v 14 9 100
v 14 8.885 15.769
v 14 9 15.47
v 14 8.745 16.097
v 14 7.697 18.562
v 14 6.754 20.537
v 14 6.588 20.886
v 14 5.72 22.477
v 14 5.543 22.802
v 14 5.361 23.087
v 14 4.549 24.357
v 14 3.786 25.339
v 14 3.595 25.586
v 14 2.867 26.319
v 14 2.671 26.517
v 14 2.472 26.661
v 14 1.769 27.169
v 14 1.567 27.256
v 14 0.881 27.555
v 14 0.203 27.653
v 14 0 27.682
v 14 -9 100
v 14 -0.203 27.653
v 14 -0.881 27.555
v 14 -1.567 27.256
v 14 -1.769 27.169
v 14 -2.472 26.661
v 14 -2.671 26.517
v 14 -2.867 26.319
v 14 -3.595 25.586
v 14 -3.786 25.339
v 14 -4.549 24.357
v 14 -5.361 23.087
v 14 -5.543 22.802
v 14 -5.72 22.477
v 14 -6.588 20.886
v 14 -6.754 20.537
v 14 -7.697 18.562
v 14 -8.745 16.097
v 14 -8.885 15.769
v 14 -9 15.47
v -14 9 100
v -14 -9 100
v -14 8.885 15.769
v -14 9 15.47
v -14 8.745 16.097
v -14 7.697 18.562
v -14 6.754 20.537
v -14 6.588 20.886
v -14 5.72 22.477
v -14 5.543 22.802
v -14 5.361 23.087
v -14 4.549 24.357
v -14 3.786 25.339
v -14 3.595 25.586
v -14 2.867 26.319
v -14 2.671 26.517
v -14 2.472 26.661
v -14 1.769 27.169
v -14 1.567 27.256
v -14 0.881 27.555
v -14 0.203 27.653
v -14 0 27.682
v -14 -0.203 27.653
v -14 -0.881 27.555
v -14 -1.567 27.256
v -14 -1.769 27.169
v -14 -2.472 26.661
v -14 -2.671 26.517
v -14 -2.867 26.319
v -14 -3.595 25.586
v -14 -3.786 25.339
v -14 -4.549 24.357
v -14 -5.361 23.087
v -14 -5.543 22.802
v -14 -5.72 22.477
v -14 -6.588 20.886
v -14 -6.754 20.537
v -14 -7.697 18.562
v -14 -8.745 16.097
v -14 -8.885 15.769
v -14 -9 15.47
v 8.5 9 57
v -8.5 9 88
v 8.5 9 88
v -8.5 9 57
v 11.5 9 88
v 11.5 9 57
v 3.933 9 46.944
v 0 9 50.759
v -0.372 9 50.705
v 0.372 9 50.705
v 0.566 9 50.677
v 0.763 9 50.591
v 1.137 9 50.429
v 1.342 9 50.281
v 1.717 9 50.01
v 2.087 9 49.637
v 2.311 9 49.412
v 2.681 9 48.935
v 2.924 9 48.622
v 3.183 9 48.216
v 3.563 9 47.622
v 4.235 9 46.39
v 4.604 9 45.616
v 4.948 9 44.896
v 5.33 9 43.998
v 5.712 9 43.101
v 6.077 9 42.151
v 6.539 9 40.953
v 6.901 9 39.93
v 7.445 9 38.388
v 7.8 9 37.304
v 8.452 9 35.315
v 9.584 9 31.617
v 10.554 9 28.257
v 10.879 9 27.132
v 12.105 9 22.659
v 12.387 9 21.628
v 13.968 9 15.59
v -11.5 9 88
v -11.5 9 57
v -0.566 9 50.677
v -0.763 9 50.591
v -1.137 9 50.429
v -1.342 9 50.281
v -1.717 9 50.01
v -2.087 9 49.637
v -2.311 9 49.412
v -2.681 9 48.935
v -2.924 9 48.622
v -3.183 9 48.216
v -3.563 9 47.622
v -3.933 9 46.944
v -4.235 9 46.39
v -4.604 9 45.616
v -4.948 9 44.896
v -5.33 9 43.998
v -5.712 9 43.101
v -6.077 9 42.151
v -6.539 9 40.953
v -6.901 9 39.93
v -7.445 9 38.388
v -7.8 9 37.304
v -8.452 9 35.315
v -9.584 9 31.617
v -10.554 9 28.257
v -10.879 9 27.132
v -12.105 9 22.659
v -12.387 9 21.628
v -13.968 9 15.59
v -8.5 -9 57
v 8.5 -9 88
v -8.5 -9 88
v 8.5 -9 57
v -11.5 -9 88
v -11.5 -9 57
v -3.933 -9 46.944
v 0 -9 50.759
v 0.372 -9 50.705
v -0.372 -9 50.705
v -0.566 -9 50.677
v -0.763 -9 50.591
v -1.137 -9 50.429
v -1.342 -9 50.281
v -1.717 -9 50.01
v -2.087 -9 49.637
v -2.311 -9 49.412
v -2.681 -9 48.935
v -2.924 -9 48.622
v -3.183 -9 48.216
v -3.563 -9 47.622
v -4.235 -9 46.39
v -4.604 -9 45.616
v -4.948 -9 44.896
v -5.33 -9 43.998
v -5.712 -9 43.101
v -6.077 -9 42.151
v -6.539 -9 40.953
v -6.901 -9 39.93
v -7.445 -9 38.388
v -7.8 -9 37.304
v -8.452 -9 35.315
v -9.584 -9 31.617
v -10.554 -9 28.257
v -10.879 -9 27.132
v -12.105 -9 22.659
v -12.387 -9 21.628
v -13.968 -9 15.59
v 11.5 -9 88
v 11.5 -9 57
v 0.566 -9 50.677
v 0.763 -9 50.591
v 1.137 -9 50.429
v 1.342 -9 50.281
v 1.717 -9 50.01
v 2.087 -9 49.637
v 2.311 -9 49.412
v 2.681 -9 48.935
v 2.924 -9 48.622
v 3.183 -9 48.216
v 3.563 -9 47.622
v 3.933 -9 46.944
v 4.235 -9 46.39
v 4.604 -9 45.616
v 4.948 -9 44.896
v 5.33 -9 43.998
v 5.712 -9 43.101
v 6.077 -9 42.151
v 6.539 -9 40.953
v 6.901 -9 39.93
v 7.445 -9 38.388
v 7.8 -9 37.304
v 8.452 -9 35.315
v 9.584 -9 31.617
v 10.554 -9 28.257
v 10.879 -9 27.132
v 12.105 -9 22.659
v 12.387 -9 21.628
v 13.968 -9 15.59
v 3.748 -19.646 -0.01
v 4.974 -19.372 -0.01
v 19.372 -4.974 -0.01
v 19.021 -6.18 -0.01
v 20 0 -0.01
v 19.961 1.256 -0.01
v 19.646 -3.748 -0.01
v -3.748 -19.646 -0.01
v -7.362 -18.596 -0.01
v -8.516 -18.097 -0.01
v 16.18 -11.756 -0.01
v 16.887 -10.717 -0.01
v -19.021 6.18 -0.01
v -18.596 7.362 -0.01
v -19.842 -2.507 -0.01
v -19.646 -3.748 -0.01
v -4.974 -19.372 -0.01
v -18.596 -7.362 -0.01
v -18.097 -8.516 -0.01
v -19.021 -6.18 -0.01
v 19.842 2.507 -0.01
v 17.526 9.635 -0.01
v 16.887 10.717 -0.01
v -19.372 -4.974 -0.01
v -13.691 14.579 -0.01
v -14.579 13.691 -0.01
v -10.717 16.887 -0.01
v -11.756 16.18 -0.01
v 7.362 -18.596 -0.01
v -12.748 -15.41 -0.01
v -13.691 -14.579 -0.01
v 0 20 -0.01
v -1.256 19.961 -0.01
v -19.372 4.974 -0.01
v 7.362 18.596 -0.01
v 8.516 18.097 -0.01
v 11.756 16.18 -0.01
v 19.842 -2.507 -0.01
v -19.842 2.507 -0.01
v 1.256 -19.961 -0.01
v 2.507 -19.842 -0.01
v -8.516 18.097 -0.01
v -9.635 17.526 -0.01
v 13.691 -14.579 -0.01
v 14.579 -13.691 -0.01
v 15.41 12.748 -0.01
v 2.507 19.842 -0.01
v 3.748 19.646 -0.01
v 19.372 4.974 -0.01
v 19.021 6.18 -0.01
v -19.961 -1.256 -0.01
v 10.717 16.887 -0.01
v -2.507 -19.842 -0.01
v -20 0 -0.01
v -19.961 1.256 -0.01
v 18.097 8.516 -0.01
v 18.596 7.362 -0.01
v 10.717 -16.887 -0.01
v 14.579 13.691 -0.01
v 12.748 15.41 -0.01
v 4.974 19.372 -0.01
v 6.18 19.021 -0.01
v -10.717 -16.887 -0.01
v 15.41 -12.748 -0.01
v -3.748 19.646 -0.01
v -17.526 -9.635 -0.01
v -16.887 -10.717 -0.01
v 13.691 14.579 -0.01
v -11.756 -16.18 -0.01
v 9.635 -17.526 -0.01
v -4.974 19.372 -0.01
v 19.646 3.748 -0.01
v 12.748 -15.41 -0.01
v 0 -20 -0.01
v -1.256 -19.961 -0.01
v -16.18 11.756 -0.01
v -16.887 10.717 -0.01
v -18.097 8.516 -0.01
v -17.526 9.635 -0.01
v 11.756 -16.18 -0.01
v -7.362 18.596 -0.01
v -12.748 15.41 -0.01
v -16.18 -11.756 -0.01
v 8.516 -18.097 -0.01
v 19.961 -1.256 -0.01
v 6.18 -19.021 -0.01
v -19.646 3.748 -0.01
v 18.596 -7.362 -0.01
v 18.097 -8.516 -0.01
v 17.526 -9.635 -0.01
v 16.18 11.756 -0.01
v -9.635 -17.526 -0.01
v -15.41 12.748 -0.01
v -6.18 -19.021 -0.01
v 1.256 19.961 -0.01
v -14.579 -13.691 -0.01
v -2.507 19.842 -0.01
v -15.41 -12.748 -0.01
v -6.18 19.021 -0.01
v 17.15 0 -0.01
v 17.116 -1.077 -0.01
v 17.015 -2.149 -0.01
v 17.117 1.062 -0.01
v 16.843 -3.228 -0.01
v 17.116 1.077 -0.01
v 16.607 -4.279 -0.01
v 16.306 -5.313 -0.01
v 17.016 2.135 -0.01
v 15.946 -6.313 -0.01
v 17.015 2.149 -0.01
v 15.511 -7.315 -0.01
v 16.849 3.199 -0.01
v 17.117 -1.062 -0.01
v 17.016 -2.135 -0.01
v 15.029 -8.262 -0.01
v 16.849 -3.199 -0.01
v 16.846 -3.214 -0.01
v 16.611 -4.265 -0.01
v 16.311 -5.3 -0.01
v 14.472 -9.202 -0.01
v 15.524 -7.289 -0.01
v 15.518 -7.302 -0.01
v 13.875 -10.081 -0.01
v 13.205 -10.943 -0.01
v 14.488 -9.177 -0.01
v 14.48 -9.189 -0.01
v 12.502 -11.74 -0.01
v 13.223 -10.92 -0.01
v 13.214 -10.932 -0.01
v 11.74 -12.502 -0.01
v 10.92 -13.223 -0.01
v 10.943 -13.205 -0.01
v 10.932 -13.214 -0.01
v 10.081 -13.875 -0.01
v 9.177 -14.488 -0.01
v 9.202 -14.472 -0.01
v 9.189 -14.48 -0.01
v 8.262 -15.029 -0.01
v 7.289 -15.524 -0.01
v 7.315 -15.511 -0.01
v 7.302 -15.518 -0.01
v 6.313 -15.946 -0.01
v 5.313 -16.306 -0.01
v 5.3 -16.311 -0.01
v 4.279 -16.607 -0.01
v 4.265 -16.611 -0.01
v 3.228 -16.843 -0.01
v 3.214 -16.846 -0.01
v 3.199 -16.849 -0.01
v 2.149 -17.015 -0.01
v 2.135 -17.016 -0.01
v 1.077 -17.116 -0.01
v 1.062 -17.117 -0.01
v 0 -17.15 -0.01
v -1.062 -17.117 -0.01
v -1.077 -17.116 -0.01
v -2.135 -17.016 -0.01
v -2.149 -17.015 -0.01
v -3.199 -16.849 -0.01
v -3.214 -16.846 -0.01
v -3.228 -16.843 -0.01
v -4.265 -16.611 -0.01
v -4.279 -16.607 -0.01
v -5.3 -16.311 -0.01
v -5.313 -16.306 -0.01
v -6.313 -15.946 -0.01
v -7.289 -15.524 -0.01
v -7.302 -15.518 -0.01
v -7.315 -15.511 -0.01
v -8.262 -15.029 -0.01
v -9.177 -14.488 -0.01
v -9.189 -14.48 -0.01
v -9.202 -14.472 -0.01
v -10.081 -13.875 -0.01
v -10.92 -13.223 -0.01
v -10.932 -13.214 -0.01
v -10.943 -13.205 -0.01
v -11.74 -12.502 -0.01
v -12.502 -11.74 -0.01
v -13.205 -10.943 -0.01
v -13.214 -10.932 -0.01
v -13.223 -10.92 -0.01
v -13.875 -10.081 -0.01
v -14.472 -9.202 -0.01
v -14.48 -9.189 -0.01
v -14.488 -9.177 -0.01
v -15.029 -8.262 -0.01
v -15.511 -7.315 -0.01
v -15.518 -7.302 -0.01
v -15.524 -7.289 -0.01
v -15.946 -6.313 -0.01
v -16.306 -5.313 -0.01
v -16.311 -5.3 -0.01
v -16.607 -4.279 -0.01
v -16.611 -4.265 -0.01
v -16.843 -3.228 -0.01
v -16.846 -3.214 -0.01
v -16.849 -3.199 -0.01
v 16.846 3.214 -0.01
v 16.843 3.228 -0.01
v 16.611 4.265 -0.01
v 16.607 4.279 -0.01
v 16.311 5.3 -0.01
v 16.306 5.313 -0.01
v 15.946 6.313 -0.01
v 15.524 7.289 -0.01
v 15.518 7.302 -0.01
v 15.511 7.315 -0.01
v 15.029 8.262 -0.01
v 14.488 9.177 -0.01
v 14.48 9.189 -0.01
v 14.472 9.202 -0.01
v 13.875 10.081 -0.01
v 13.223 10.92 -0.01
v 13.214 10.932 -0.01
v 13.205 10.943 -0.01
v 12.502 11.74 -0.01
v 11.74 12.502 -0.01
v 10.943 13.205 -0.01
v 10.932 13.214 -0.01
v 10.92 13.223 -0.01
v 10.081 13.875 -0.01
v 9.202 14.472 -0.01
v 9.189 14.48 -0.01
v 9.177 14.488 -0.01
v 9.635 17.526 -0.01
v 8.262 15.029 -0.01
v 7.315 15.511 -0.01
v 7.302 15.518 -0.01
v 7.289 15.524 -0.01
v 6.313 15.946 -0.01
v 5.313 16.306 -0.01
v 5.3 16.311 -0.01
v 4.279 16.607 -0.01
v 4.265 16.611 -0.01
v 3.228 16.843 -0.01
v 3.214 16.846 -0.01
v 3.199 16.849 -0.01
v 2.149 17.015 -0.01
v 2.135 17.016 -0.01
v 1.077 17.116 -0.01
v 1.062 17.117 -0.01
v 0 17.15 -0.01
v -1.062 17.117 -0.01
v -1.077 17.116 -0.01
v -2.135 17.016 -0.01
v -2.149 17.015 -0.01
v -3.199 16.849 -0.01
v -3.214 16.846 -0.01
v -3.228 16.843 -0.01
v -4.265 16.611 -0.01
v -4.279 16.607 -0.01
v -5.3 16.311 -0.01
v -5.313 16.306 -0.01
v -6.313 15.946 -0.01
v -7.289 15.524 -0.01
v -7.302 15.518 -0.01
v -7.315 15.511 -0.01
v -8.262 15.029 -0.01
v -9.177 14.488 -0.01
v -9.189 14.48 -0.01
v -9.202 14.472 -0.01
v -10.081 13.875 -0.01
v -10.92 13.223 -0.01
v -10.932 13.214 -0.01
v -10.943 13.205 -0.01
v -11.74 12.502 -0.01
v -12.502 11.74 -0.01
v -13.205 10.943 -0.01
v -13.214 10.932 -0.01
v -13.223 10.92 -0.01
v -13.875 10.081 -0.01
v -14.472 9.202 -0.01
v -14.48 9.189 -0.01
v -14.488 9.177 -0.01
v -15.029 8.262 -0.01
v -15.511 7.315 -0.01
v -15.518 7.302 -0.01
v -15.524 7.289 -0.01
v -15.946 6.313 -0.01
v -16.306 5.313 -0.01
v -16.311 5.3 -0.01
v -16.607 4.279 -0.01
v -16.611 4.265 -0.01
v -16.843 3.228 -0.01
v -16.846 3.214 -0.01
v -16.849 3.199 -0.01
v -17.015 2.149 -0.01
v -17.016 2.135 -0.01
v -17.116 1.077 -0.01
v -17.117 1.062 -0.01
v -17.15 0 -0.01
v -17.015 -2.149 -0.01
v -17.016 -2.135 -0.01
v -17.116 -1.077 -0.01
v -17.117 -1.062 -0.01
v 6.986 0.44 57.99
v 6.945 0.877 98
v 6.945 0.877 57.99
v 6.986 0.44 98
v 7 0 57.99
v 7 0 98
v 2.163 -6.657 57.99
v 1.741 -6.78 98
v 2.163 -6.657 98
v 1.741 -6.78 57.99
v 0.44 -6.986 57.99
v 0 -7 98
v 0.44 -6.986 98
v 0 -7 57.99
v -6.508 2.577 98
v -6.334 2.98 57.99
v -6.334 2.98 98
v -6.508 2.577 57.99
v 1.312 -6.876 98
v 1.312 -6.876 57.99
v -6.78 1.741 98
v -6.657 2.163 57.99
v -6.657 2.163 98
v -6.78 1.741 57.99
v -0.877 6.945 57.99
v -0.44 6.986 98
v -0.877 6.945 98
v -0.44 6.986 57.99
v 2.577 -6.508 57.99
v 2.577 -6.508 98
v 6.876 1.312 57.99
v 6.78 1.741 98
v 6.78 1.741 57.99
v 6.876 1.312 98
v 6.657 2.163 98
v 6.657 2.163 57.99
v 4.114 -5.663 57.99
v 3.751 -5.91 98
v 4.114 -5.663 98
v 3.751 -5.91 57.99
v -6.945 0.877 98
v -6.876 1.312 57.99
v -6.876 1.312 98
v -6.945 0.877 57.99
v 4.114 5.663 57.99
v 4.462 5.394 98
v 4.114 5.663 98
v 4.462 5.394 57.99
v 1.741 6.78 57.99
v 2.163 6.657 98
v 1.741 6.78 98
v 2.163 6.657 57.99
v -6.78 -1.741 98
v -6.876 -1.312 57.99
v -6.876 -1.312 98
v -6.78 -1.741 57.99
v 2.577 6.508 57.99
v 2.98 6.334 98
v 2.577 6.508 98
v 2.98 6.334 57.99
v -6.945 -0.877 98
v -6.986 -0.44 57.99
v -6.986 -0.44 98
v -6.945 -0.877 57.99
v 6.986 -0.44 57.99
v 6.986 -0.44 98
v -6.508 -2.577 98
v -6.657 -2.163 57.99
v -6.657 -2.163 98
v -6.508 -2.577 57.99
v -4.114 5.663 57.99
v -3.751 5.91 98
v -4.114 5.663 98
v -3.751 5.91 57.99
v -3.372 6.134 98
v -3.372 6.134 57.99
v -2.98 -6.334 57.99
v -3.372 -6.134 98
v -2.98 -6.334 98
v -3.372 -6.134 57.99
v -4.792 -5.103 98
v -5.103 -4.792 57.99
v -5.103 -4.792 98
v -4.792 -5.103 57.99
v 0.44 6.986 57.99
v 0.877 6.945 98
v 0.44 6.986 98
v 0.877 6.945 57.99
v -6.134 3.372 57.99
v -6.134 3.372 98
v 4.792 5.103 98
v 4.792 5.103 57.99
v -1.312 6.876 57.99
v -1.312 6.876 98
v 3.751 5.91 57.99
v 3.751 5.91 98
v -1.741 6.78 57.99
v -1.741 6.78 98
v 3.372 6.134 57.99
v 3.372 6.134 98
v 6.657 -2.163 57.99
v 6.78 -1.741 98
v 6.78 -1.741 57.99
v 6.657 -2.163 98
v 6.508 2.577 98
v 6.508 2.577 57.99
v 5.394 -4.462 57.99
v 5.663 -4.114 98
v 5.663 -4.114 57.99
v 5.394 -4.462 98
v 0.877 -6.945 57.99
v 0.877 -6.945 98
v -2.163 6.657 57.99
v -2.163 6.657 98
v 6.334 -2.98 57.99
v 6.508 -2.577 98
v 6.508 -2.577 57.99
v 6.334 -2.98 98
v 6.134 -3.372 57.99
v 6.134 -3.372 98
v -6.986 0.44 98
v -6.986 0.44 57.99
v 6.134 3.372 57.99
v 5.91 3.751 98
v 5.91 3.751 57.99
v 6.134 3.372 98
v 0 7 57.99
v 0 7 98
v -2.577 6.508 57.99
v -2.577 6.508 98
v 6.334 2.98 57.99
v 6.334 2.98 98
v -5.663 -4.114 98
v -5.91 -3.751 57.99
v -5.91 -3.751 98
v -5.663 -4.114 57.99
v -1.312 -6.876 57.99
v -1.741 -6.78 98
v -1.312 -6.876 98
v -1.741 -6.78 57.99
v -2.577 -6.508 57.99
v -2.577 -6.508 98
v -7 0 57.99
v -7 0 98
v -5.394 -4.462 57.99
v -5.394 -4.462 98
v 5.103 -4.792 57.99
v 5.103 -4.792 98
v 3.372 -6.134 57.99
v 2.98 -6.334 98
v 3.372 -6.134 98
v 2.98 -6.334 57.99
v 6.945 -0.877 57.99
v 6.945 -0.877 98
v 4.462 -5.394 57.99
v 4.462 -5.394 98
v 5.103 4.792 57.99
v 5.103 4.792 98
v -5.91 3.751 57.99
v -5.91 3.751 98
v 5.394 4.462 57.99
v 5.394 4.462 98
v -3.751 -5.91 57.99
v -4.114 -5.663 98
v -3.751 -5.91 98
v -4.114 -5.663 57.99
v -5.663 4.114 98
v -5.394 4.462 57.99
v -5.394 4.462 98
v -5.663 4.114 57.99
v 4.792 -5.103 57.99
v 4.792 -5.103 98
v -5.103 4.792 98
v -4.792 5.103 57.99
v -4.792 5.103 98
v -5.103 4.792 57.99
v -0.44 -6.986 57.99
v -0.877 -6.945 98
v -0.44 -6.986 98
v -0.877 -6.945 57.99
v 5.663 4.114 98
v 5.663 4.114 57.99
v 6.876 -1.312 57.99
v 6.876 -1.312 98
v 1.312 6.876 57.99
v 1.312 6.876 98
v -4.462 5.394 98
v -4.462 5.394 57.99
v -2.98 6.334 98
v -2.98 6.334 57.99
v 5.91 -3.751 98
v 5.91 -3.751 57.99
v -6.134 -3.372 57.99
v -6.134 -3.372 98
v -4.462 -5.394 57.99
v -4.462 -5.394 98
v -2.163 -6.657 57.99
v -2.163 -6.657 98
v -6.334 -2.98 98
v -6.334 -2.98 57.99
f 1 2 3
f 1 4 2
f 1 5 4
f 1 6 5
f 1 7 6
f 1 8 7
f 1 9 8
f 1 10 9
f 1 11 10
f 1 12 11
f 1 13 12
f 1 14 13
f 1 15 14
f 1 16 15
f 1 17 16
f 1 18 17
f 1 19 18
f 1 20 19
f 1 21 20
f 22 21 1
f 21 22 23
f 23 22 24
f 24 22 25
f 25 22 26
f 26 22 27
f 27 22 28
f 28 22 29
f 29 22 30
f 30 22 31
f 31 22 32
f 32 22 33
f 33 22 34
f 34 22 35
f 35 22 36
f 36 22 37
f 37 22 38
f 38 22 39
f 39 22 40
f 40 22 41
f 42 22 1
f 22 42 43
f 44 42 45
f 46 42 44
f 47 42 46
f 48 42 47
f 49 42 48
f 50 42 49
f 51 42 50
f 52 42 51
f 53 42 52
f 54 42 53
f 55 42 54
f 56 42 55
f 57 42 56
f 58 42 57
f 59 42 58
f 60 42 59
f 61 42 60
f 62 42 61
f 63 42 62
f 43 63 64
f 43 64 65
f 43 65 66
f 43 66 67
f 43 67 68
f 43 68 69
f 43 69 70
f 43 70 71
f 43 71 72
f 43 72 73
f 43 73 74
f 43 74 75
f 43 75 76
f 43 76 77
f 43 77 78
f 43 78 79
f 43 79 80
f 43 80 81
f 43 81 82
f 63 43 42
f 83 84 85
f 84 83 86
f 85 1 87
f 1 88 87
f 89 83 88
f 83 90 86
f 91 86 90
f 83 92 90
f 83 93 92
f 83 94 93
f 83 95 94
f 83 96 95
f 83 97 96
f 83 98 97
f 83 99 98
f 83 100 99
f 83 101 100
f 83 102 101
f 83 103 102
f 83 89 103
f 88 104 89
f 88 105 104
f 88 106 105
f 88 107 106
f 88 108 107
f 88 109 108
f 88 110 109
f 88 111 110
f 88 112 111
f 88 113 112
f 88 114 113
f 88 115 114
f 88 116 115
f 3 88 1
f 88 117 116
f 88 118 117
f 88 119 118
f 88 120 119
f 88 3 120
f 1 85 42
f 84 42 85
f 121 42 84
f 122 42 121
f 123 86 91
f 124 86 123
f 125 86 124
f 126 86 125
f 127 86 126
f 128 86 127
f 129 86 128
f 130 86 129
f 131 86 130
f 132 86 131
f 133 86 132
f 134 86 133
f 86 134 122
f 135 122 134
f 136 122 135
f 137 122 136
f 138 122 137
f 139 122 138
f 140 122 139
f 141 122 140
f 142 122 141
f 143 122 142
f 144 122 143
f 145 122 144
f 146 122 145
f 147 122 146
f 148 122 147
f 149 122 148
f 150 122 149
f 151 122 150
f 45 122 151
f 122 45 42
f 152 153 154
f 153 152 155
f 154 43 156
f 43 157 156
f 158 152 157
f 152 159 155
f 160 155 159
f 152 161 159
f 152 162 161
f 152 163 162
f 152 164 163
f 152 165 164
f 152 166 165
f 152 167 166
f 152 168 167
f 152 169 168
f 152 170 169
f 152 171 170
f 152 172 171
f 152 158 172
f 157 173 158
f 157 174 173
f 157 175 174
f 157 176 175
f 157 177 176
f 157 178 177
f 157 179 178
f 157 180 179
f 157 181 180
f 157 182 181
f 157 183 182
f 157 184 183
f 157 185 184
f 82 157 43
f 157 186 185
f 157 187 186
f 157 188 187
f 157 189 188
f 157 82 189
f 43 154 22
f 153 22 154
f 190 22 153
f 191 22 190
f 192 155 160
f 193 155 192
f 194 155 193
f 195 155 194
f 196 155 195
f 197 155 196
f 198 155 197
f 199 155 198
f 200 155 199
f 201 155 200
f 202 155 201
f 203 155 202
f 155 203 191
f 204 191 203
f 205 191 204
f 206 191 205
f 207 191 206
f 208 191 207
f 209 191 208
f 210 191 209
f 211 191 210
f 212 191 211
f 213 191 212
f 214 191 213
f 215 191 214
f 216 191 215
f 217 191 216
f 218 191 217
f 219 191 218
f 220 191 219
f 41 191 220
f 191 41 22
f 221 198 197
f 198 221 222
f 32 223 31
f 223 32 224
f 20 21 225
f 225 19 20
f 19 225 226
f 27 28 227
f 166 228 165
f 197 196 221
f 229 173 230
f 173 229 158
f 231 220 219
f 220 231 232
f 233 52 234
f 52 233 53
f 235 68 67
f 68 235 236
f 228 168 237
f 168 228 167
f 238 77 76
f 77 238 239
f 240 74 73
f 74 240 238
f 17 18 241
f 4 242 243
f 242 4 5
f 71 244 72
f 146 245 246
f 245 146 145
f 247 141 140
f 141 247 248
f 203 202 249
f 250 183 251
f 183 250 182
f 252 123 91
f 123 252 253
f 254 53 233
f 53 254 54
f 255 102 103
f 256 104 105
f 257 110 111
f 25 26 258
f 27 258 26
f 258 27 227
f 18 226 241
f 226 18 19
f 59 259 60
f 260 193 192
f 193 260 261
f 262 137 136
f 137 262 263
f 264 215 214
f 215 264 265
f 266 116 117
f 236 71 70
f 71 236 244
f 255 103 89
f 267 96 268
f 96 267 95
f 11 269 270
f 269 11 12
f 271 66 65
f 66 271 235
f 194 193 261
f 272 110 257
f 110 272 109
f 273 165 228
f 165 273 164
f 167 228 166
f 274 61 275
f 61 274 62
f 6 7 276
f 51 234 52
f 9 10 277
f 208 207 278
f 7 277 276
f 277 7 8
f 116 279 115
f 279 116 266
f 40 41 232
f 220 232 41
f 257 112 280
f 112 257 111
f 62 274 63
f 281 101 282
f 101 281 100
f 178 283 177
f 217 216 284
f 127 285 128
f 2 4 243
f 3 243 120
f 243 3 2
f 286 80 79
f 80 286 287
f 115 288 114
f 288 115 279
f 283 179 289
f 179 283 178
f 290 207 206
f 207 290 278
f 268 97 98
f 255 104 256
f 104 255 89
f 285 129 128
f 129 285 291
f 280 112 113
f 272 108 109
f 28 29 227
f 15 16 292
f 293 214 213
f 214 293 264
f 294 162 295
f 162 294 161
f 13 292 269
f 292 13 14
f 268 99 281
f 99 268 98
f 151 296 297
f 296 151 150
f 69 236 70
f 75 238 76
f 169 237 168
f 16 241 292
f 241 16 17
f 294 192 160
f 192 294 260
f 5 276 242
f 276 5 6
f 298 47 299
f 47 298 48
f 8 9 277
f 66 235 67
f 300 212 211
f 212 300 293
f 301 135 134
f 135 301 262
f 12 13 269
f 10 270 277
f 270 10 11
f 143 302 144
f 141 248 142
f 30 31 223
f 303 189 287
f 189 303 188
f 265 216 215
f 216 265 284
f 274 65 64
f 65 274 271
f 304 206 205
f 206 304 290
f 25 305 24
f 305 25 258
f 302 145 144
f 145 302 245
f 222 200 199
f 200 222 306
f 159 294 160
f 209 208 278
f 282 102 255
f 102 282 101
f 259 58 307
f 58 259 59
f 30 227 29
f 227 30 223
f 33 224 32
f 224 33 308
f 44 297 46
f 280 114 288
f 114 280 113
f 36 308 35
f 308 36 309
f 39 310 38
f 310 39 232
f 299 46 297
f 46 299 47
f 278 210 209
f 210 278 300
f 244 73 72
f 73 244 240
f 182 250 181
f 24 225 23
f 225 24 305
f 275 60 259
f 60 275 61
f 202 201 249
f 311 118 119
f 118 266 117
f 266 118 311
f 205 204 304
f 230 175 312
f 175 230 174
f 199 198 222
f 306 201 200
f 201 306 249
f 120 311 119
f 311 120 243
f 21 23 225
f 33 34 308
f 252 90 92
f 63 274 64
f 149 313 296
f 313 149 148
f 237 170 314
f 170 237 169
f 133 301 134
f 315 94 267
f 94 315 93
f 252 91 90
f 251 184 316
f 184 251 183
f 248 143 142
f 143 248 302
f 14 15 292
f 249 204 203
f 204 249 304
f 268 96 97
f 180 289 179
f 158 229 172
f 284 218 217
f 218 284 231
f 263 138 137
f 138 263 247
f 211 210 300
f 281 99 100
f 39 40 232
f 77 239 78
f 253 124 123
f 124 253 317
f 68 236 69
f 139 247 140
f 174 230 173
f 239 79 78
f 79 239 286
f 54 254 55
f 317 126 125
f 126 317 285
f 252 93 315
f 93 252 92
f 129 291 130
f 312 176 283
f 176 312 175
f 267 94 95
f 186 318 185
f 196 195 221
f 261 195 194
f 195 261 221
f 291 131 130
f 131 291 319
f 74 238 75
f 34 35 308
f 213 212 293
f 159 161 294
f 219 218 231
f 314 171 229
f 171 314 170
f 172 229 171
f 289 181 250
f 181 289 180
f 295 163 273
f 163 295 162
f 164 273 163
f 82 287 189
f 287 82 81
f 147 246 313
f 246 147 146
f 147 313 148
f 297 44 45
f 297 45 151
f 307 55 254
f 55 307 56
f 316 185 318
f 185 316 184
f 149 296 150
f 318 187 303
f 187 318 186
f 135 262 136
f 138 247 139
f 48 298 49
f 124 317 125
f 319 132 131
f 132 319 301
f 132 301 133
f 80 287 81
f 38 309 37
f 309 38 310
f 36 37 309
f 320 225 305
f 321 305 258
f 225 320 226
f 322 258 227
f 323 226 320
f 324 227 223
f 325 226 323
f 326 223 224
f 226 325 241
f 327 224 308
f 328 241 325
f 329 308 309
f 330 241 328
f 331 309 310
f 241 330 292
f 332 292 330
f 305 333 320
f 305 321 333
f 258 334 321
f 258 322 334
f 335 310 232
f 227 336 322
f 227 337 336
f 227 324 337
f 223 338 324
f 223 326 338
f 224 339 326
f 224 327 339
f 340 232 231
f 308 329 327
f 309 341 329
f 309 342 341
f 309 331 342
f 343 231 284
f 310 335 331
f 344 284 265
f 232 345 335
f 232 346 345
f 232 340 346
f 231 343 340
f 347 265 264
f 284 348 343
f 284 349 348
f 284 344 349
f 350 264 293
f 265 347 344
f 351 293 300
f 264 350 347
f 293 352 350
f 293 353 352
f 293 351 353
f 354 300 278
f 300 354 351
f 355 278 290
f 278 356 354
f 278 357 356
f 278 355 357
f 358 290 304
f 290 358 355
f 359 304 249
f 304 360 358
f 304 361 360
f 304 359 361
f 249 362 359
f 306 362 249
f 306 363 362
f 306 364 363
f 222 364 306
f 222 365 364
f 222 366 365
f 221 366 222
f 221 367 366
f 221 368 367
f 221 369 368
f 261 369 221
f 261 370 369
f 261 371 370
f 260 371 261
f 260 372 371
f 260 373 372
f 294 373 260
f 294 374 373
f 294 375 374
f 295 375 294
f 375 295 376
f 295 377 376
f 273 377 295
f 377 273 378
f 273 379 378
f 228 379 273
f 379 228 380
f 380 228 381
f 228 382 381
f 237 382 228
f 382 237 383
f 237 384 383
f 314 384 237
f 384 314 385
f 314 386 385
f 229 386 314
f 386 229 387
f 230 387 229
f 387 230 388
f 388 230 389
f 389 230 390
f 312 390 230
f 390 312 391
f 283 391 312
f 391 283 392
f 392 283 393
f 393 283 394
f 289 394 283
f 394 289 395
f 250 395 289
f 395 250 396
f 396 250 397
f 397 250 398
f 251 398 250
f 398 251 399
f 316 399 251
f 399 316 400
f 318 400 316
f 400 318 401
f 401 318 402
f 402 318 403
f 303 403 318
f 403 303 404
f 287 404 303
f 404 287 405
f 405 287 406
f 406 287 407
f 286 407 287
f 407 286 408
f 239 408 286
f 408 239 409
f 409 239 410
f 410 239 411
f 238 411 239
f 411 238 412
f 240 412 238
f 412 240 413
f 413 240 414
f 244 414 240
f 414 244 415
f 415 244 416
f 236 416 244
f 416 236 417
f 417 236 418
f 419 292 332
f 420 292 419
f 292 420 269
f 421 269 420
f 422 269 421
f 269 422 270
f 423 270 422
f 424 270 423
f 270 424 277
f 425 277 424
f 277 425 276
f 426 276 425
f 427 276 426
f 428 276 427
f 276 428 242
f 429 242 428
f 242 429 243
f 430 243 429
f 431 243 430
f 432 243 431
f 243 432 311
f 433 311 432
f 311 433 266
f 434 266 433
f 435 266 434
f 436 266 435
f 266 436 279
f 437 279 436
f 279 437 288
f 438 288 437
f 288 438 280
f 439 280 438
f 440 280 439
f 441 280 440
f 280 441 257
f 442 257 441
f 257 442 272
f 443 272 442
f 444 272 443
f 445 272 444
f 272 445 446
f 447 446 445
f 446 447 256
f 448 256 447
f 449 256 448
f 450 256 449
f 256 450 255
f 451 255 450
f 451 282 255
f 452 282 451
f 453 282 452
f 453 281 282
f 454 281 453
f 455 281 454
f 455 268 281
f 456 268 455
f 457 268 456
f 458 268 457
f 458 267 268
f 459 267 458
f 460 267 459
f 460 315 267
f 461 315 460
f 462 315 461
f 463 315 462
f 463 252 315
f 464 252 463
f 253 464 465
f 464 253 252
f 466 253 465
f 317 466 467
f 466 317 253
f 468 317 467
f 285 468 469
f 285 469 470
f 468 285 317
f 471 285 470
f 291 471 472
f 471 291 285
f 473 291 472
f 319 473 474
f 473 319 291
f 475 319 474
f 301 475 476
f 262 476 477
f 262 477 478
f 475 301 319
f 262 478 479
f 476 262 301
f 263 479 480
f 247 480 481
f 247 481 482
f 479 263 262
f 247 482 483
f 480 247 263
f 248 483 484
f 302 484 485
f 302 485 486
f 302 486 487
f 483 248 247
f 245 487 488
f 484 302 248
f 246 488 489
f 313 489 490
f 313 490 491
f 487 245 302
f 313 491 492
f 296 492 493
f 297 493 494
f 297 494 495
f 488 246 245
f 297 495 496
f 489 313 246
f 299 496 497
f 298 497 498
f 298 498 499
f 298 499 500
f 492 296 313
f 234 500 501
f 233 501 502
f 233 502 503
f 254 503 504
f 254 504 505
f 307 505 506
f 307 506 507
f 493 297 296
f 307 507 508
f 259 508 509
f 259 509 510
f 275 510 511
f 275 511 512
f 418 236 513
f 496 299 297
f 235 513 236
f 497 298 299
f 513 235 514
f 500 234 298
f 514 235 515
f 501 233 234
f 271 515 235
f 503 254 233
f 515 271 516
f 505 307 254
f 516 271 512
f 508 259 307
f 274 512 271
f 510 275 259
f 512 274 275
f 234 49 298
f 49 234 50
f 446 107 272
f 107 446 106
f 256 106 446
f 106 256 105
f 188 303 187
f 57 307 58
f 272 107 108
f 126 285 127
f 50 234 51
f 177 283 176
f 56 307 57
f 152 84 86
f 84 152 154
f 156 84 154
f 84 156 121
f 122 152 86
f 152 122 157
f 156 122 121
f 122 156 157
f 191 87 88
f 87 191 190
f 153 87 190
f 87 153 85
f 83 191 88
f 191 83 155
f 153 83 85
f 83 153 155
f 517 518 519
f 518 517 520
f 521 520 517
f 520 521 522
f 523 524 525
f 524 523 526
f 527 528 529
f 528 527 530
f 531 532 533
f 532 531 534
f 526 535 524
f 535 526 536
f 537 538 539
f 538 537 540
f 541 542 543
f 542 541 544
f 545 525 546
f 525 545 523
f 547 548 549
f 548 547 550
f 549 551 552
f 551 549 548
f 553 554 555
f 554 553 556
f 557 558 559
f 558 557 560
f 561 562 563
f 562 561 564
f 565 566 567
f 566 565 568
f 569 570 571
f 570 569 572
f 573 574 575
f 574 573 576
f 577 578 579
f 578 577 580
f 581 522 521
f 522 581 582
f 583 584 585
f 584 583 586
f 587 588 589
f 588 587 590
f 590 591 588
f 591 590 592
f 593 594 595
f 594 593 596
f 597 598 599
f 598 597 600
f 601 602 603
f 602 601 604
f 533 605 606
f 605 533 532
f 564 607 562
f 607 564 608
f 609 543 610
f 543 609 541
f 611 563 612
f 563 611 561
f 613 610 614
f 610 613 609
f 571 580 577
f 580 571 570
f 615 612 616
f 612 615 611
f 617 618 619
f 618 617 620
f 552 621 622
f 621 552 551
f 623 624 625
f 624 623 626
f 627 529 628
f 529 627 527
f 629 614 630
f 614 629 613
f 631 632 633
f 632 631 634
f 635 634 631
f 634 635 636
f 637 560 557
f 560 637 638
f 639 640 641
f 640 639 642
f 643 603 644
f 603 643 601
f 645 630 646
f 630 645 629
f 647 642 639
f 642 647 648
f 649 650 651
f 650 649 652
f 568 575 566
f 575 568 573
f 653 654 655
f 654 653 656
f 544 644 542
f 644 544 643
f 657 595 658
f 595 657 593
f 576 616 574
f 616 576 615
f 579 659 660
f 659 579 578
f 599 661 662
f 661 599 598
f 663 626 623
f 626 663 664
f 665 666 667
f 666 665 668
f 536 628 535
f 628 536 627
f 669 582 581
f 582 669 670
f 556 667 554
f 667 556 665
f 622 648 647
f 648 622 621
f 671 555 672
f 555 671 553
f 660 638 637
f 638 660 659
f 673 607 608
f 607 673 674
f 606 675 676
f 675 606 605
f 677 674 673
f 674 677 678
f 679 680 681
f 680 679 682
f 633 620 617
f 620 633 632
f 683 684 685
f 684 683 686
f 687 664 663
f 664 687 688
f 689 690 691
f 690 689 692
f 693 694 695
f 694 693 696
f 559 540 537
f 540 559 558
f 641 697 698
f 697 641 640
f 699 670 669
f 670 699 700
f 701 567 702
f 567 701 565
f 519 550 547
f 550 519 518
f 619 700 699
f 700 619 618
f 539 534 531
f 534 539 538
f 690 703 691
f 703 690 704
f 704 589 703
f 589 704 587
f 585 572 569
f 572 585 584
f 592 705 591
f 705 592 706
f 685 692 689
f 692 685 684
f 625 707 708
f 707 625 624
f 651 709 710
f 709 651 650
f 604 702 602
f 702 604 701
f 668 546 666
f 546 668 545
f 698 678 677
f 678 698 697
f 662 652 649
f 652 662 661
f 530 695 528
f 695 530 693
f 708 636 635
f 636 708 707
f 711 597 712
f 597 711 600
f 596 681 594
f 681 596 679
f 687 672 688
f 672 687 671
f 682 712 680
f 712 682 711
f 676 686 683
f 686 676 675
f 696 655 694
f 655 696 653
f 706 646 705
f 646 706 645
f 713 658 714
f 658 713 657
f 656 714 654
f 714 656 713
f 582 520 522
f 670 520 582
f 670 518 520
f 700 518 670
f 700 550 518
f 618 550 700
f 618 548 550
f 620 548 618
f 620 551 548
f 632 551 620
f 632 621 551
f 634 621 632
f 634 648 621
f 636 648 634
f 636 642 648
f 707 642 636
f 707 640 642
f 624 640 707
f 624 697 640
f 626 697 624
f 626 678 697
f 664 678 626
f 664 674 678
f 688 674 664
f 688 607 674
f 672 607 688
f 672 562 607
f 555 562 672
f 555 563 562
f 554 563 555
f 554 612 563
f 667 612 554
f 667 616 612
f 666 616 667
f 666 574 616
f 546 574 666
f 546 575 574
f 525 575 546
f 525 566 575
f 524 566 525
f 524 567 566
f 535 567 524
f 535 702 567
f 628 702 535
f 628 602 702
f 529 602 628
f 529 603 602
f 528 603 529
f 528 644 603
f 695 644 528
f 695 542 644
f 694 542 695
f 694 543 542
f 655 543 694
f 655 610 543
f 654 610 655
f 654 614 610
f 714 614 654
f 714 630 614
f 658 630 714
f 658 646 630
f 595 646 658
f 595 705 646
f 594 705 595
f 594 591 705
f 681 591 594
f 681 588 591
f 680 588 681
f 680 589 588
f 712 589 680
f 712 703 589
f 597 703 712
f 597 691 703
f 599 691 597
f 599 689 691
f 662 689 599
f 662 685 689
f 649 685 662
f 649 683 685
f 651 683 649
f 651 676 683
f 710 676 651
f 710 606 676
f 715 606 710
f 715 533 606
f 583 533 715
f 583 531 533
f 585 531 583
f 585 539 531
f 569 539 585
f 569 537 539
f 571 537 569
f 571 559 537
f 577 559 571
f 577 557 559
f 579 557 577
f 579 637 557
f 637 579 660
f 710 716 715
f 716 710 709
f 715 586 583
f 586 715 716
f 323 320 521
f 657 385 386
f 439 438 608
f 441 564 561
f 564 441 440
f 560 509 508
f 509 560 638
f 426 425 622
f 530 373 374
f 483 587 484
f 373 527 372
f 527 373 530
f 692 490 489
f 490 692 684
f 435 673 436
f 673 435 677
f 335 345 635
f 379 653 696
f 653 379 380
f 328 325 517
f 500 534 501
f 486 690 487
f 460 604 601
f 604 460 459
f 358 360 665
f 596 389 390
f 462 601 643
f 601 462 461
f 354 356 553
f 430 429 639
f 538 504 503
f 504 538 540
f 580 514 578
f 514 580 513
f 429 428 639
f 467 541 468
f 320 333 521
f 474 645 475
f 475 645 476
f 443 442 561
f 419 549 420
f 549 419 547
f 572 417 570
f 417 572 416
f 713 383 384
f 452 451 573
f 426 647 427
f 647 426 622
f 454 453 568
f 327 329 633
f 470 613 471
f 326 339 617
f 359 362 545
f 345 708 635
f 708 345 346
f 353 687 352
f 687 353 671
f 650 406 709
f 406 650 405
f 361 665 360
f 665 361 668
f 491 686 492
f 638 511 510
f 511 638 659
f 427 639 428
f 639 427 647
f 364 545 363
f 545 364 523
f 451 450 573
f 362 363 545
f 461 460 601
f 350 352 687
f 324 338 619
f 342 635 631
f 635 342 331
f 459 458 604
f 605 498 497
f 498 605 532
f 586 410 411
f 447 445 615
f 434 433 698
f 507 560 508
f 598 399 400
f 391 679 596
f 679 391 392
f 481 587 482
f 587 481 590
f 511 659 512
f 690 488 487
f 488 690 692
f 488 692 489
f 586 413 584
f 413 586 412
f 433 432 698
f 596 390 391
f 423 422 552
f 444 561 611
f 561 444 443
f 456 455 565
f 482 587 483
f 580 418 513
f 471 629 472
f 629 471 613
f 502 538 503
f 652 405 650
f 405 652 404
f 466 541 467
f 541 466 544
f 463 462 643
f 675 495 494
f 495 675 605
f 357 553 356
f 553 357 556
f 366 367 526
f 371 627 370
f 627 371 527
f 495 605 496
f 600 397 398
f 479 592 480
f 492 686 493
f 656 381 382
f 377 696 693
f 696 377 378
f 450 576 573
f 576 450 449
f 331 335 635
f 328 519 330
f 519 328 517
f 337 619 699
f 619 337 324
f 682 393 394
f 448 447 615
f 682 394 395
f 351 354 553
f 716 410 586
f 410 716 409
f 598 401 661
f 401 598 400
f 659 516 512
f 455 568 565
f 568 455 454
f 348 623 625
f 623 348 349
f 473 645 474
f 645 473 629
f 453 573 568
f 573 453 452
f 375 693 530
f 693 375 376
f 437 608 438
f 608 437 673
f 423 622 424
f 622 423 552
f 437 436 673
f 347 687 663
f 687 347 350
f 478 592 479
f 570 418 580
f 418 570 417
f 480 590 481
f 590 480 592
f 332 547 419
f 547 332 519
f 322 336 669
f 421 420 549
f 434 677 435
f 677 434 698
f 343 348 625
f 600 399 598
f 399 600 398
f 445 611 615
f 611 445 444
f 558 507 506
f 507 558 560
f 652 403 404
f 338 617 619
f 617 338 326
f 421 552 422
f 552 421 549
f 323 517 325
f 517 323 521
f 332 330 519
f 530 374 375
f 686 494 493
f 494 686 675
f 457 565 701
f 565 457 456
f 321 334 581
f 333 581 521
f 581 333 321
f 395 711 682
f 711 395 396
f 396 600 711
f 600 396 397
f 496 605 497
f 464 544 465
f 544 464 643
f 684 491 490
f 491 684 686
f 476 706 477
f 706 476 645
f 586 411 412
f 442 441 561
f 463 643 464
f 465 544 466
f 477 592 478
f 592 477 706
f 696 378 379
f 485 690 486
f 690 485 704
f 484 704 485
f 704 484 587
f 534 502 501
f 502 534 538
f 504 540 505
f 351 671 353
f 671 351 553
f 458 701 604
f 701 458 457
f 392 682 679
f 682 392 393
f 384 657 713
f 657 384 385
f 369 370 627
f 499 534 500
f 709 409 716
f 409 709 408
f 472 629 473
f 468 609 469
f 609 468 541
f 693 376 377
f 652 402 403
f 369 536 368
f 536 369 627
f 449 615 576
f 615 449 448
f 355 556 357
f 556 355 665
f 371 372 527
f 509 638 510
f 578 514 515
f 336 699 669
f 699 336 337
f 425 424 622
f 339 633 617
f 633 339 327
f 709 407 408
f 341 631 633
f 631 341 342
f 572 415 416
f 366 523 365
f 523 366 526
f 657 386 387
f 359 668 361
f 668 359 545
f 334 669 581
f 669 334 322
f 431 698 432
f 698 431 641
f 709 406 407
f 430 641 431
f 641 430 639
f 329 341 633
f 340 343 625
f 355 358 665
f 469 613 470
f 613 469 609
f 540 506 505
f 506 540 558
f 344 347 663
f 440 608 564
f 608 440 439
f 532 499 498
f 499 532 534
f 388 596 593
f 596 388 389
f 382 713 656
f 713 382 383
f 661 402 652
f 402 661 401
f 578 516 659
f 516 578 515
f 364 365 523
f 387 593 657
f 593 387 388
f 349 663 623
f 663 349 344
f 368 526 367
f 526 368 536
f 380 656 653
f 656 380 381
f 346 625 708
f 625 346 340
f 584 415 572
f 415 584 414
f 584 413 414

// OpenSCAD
body_w = 28;
body_l = 18;
body_h = 100;
body_x = -(body_w / 2);
body_y = -(body_l / 2);
body_z = 0;

// How far below the top of the body will the socket and treebranch reach?
body_socket_delta = 12;
body_treebranch_delta = 10;

socket_w = 3;
socket_l = 22;
socket_h = 31;

socket_left_x = -8.5 - socket_w;
socket_left_y = -(socket_l / 2);
socket_left_z = body_h - socket_h - body_socket_delta;

socket_right_x = 8.5;
socket_right_y = -(socket_l / 2);
socket_right_z = body_h - socket_h - body_socket_delta;

tree_cylinder_x = 0;
tree_cylinder_y = 0;
tree_cylinder_z = body_h - 50;
tree_cylinder_r = 7;
tree_cylinder_h = 50;

tree_cone_x = 0;
tree_cone_y = 0;
tree_cone_z = -0.01;
tree_cone_r = 7;
tree_cone_h = 60;

$fn = 100;

module mount_3d() {

    difference() {
        union() {
            translate([body_x, body_y, body_z])
                cube([body_w, body_l, body_h]);

            translate([tree_cone_x, tree_cone_y, tree_cone_z])
                cylinder(r=tree_cone_r, h=tree_cone_h, d1=40);
        }

        translate([socket_left_x, socket_left_y, socket_left_z])
            cube([socket_w, socket_l, socket_h]);

        translate([socket_right_x, socket_right_y, socket_right_z])
            cube([socket_w, socket_l, socket_h]);

        translate([tree_cylinder_x, tree_cylinder_y, tree_cylinder_z-2])
            cylinder(r=tree_cylinder_r, h=tree_cylinder_h);

        translate([tree_cone_x, tree_cone_y, tree_cone_z-2])
            cylinder(r=tree_cone_r, h=tree_cone_h, d1=35);
    }
}


mount_3d();

// vim:syntax=c
